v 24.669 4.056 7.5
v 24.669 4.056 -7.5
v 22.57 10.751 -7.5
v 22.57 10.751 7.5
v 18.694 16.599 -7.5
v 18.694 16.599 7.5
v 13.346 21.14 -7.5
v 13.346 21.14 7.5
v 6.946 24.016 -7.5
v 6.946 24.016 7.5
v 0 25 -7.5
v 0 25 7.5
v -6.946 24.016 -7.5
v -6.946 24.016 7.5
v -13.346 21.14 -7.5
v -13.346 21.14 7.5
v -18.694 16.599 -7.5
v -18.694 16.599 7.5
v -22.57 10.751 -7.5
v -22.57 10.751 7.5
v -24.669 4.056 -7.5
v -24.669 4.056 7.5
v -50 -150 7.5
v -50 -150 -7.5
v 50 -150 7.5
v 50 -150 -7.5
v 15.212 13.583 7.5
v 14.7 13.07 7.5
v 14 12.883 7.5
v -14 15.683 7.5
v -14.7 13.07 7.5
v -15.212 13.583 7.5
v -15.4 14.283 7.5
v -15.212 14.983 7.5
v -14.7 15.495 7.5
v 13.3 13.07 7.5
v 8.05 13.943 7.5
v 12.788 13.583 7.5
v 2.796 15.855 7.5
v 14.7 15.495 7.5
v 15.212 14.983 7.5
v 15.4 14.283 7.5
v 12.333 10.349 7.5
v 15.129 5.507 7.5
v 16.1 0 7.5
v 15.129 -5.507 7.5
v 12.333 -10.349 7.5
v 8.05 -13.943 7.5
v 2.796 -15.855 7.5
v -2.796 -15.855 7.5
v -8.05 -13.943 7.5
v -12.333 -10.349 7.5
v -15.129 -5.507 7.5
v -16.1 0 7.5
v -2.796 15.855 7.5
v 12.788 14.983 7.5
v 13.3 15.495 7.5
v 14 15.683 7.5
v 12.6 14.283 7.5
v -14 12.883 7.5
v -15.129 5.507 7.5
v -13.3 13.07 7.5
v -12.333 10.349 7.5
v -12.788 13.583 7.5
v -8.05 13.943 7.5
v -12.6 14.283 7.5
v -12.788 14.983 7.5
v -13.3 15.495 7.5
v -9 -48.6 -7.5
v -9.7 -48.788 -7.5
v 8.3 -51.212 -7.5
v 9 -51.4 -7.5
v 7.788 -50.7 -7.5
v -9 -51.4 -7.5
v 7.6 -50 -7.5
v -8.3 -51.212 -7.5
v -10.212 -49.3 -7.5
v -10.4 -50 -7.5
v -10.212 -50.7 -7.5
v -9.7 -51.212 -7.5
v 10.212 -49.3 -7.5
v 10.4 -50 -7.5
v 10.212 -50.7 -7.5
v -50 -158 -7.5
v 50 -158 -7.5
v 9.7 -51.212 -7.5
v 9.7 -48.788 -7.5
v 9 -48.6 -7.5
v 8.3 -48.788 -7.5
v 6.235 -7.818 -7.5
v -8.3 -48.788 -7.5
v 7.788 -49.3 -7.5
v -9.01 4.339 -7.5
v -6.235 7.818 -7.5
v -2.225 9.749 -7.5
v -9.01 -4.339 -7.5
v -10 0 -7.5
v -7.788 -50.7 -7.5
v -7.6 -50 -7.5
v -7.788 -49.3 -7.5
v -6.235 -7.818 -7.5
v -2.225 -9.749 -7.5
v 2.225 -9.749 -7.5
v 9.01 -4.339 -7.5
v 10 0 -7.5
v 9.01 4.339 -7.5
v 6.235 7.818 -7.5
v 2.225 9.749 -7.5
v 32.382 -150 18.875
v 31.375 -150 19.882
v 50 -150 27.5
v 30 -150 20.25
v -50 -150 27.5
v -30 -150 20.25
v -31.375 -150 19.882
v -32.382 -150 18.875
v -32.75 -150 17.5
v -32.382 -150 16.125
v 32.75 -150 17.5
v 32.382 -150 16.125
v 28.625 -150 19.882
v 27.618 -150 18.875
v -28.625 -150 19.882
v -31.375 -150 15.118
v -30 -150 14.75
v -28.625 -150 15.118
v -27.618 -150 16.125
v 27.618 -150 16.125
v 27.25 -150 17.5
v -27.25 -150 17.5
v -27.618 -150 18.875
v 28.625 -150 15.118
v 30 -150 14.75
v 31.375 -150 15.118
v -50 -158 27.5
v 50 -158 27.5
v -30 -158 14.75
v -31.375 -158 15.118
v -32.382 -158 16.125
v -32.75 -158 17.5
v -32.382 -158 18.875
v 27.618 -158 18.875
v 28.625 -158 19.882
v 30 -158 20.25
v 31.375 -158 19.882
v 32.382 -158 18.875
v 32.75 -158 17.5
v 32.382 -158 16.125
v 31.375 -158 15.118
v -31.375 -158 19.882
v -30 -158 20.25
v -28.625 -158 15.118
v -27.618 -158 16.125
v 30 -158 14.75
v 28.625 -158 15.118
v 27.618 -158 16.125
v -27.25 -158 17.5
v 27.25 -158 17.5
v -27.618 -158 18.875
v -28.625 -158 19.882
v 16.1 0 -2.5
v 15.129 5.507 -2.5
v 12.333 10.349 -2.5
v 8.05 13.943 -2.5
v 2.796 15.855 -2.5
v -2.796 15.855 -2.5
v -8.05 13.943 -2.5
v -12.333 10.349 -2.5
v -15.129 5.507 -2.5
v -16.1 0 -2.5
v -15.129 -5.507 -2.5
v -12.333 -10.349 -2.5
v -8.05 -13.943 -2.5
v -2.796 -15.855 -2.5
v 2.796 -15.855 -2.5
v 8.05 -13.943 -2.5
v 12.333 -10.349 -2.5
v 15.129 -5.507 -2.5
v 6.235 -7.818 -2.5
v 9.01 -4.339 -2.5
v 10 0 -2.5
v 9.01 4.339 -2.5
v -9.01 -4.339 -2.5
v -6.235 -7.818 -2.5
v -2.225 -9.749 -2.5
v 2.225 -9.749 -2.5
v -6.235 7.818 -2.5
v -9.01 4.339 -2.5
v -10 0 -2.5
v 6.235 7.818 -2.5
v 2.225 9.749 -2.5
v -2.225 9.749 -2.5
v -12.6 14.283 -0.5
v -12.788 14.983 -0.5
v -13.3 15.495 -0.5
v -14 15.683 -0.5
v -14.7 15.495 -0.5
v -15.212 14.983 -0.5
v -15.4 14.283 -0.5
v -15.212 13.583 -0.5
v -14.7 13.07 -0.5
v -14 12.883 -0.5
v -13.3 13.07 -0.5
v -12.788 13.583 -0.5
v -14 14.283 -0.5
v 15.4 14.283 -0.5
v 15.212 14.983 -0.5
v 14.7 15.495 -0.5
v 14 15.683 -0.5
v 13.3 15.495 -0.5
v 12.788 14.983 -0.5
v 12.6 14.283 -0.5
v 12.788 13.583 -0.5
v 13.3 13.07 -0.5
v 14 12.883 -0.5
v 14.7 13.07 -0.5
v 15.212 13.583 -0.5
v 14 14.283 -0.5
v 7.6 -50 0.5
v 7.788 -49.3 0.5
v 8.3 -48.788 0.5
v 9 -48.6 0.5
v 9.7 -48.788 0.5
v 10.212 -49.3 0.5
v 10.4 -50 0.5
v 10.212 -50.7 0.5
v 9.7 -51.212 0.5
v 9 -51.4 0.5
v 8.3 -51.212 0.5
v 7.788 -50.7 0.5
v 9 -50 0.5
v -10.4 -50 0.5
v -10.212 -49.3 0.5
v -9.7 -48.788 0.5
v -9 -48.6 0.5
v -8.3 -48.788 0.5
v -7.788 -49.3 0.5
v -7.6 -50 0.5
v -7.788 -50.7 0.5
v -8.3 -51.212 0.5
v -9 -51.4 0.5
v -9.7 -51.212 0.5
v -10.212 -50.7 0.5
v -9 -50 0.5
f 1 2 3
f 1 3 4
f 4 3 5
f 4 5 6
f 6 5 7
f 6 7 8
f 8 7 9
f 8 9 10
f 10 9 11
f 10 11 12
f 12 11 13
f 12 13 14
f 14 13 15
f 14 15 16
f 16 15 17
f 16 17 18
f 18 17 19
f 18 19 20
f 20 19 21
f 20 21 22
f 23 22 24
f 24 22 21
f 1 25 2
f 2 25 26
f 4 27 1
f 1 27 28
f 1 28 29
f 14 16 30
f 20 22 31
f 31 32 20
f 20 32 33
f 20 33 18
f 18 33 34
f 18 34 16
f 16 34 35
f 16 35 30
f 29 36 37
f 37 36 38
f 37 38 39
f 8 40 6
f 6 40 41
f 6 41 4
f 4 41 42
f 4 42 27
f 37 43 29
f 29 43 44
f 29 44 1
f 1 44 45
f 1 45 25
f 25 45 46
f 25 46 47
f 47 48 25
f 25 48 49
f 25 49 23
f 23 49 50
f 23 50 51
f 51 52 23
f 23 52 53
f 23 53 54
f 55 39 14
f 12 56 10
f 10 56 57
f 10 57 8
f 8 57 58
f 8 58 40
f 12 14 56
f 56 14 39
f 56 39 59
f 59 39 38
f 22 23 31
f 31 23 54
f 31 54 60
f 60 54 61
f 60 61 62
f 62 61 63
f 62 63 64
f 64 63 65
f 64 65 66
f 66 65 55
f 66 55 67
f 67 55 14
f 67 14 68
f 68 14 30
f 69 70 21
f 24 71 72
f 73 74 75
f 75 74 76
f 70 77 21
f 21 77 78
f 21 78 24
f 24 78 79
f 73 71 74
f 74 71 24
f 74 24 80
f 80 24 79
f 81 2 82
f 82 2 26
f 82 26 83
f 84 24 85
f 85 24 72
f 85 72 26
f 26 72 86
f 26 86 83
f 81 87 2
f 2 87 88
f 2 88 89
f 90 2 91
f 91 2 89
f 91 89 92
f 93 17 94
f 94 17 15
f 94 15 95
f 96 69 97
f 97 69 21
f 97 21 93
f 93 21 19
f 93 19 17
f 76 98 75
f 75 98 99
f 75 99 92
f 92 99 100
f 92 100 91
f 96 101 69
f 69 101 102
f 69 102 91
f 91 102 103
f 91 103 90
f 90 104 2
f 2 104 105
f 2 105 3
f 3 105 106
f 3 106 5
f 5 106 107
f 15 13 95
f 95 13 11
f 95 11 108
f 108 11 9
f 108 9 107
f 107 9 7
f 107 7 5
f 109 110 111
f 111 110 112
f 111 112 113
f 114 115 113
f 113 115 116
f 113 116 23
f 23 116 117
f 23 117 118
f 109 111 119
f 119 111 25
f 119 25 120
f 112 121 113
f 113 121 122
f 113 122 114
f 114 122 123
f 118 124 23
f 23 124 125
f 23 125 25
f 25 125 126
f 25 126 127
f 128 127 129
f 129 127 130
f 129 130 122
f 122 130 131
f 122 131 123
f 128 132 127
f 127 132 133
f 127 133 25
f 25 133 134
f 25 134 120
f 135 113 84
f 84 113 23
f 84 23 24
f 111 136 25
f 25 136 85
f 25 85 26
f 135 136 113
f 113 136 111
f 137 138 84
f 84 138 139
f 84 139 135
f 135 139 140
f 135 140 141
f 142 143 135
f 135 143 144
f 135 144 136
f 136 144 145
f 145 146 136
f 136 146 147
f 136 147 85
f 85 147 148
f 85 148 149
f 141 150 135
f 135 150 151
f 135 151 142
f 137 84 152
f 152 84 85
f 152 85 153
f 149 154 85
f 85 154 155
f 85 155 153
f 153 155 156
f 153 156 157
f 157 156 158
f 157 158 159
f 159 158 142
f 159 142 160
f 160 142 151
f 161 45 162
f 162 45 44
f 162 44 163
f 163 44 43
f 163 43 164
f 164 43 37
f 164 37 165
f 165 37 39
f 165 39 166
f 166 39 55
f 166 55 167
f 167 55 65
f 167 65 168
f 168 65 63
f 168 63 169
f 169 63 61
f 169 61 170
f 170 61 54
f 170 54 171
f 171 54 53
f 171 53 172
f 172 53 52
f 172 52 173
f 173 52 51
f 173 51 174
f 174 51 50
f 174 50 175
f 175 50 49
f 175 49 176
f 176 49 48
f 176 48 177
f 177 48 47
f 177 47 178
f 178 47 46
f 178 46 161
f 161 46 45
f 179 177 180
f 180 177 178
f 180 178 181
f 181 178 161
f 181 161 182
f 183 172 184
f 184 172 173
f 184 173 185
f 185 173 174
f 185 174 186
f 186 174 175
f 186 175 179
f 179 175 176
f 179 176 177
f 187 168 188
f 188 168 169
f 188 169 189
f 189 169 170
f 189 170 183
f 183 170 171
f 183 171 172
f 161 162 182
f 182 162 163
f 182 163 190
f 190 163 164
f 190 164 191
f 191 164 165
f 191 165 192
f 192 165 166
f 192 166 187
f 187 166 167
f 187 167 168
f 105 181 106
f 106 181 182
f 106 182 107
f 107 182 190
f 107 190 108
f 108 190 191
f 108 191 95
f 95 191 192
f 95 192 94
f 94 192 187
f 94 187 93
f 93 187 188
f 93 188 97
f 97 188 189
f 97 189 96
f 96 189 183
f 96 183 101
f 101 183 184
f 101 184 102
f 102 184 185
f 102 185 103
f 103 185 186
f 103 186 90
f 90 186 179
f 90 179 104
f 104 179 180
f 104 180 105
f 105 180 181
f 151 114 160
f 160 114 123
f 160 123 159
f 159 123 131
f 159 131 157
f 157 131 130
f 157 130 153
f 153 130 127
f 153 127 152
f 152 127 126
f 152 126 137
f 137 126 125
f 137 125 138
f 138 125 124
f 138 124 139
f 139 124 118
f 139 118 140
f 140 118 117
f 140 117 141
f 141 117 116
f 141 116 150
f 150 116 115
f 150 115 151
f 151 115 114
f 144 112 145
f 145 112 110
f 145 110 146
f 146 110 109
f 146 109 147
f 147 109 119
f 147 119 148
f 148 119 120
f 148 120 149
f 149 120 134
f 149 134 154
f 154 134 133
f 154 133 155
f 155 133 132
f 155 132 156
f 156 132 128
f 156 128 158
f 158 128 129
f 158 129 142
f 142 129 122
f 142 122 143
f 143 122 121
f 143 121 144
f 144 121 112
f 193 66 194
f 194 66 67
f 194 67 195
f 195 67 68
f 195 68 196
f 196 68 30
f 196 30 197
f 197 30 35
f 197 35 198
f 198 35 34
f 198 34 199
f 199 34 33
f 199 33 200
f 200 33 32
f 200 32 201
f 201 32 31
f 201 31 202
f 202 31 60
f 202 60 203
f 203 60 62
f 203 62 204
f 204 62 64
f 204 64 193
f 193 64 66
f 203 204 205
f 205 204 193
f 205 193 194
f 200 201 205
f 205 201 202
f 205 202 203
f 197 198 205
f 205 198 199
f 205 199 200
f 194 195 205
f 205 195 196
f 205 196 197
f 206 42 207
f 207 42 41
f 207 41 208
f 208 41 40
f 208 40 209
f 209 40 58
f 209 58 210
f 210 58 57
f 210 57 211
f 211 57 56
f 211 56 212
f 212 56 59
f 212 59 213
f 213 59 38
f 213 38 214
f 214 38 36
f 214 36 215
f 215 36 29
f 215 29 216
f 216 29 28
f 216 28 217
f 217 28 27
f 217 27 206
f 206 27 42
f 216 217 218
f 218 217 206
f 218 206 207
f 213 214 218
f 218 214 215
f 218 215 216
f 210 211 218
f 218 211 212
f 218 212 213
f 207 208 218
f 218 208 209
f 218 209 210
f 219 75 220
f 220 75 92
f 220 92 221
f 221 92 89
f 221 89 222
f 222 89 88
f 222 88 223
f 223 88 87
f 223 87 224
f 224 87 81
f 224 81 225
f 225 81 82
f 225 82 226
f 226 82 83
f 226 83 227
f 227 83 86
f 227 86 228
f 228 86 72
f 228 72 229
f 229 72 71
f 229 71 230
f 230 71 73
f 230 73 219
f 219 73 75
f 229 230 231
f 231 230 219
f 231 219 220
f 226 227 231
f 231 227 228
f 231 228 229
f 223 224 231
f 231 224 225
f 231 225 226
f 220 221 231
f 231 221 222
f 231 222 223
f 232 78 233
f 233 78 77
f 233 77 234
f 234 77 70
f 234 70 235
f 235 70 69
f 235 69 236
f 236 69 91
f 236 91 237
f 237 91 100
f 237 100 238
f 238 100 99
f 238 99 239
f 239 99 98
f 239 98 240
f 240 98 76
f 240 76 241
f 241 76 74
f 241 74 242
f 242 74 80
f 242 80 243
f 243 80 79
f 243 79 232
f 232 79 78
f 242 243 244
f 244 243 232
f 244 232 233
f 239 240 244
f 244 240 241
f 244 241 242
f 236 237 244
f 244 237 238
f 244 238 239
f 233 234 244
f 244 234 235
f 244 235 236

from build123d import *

# Parameters (mm, degrees)
BOSS_EXTRUDE1_DEPTH = 7.5
SKETCH7_W           = 100
SKETCH7_H           = 35
BOSS_EXTRUDE2_DEPTH = 8
SKETCH5_R           = 16.1
CUT_EXTRUDE1_DEPTH  = 10
SKETCH6_R           = 10
CUT_EXTRUDE2_DEPTH  = 20
SKETCH11_R          = 1.4
CUT_EXTRUDE3_DEPTH  = 8
SKETCH12_R          = 1.4
CUT_EXTRUDE4_DEPTH  = 8


with BuildPart() as part:
    # Sketch1 → Boss-Extrude1 (new, symmetric)
    with BuildSketch(Plane.XY):
        with BuildLine():
            Line((24.668742494, 4.056247498), (50, -150))
            Line((50, -150), (-50, -150))
            Line((-50, -150), (-24.668742494, 4.056247498))
            ThreePointArc((-24.668742494, 4.056247498), (0, 25), (24.668742494, 4.056247498))
        make_face()
    extrude(amount=BOSS_EXTRUDE1_DEPTH, both=True)

    # Sketch7 → Boss-Extrude2 (add)
    with BuildSketch(Plane.XZ.offset(150)):
        with Locations((0, 10)):
            Rectangle(SKETCH7_W, SKETCH7_H)
    extrude(amount=BOSS_EXTRUDE2_DEPTH)

    # Sketch5 → Cut-Extrude1 (cut)
    with BuildSketch(Plane.XY.offset(7.5)):
        Circle(SKETCH5_R)
    extrude(amount=-CUT_EXTRUDE1_DEPTH, mode=Mode.SUBTRACT)

    # Sketch6 → Cut-Extrude2 (cut)
    with BuildSketch(Plane.XY.offset(-2.5)):
        Circle(SKETCH6_R)
    extrude(amount=-CUT_EXTRUDE2_DEPTH, mode=Mode.SUBTRACT)

    # Sketch10 → M5 Clearance Hole1 (revolve, cut)
    with BuildSketch(Plane(origin=(-30, -150, 17.5), x_dir=(0, 0, 1), z_dir=(1, 0, 0))):
        Polygon((0, 0), (0, 11.652366702), (2.75, 10), (2.75, 0), align=None)
    m5_clearance_hole1 = revolve(axis=Axis((-30, -143.65, 17.5), (0, -1, 0)), mode=Mode.SUBTRACT)

    # Mirror1: M5 Clearance Hole1 across plane
    add(m5_clearance_hole1.mirror(Plane(origin=(0, 0, 0), x_dir=(0, 0, 1), z_dir=(1, 0, 0))), mode=Mode.SUBTRACT)

    # Sketch11 → Cut-Extrude3 (cut)
    with BuildSketch(Plane.XY.offset(7.5)):
        with Locations((14, 14.282856857)):
            Circle(SKETCH11_R)
        with Locations((-14, 14.282856857)):
            Circle(SKETCH11_R)
    extrude(amount=-CUT_EXTRUDE3_DEPTH, mode=Mode.SUBTRACT)

    # Sketch12 → Cut-Extrude4 (cut)
    with BuildSketch(Plane(origin=(0, 0, -7.5), x_dir=(-1, 0, 0), z_dir=(0, 0, -1))):
        with Locations((9, -50)):
            Circle(SKETCH12_R)
        with Locations((-9, -50)):
            Circle(SKETCH12_R)
    extrude(amount=-CUT_EXTRUDE4_DEPTH, mode=Mode.SUBTRACT)


solid = part.part
